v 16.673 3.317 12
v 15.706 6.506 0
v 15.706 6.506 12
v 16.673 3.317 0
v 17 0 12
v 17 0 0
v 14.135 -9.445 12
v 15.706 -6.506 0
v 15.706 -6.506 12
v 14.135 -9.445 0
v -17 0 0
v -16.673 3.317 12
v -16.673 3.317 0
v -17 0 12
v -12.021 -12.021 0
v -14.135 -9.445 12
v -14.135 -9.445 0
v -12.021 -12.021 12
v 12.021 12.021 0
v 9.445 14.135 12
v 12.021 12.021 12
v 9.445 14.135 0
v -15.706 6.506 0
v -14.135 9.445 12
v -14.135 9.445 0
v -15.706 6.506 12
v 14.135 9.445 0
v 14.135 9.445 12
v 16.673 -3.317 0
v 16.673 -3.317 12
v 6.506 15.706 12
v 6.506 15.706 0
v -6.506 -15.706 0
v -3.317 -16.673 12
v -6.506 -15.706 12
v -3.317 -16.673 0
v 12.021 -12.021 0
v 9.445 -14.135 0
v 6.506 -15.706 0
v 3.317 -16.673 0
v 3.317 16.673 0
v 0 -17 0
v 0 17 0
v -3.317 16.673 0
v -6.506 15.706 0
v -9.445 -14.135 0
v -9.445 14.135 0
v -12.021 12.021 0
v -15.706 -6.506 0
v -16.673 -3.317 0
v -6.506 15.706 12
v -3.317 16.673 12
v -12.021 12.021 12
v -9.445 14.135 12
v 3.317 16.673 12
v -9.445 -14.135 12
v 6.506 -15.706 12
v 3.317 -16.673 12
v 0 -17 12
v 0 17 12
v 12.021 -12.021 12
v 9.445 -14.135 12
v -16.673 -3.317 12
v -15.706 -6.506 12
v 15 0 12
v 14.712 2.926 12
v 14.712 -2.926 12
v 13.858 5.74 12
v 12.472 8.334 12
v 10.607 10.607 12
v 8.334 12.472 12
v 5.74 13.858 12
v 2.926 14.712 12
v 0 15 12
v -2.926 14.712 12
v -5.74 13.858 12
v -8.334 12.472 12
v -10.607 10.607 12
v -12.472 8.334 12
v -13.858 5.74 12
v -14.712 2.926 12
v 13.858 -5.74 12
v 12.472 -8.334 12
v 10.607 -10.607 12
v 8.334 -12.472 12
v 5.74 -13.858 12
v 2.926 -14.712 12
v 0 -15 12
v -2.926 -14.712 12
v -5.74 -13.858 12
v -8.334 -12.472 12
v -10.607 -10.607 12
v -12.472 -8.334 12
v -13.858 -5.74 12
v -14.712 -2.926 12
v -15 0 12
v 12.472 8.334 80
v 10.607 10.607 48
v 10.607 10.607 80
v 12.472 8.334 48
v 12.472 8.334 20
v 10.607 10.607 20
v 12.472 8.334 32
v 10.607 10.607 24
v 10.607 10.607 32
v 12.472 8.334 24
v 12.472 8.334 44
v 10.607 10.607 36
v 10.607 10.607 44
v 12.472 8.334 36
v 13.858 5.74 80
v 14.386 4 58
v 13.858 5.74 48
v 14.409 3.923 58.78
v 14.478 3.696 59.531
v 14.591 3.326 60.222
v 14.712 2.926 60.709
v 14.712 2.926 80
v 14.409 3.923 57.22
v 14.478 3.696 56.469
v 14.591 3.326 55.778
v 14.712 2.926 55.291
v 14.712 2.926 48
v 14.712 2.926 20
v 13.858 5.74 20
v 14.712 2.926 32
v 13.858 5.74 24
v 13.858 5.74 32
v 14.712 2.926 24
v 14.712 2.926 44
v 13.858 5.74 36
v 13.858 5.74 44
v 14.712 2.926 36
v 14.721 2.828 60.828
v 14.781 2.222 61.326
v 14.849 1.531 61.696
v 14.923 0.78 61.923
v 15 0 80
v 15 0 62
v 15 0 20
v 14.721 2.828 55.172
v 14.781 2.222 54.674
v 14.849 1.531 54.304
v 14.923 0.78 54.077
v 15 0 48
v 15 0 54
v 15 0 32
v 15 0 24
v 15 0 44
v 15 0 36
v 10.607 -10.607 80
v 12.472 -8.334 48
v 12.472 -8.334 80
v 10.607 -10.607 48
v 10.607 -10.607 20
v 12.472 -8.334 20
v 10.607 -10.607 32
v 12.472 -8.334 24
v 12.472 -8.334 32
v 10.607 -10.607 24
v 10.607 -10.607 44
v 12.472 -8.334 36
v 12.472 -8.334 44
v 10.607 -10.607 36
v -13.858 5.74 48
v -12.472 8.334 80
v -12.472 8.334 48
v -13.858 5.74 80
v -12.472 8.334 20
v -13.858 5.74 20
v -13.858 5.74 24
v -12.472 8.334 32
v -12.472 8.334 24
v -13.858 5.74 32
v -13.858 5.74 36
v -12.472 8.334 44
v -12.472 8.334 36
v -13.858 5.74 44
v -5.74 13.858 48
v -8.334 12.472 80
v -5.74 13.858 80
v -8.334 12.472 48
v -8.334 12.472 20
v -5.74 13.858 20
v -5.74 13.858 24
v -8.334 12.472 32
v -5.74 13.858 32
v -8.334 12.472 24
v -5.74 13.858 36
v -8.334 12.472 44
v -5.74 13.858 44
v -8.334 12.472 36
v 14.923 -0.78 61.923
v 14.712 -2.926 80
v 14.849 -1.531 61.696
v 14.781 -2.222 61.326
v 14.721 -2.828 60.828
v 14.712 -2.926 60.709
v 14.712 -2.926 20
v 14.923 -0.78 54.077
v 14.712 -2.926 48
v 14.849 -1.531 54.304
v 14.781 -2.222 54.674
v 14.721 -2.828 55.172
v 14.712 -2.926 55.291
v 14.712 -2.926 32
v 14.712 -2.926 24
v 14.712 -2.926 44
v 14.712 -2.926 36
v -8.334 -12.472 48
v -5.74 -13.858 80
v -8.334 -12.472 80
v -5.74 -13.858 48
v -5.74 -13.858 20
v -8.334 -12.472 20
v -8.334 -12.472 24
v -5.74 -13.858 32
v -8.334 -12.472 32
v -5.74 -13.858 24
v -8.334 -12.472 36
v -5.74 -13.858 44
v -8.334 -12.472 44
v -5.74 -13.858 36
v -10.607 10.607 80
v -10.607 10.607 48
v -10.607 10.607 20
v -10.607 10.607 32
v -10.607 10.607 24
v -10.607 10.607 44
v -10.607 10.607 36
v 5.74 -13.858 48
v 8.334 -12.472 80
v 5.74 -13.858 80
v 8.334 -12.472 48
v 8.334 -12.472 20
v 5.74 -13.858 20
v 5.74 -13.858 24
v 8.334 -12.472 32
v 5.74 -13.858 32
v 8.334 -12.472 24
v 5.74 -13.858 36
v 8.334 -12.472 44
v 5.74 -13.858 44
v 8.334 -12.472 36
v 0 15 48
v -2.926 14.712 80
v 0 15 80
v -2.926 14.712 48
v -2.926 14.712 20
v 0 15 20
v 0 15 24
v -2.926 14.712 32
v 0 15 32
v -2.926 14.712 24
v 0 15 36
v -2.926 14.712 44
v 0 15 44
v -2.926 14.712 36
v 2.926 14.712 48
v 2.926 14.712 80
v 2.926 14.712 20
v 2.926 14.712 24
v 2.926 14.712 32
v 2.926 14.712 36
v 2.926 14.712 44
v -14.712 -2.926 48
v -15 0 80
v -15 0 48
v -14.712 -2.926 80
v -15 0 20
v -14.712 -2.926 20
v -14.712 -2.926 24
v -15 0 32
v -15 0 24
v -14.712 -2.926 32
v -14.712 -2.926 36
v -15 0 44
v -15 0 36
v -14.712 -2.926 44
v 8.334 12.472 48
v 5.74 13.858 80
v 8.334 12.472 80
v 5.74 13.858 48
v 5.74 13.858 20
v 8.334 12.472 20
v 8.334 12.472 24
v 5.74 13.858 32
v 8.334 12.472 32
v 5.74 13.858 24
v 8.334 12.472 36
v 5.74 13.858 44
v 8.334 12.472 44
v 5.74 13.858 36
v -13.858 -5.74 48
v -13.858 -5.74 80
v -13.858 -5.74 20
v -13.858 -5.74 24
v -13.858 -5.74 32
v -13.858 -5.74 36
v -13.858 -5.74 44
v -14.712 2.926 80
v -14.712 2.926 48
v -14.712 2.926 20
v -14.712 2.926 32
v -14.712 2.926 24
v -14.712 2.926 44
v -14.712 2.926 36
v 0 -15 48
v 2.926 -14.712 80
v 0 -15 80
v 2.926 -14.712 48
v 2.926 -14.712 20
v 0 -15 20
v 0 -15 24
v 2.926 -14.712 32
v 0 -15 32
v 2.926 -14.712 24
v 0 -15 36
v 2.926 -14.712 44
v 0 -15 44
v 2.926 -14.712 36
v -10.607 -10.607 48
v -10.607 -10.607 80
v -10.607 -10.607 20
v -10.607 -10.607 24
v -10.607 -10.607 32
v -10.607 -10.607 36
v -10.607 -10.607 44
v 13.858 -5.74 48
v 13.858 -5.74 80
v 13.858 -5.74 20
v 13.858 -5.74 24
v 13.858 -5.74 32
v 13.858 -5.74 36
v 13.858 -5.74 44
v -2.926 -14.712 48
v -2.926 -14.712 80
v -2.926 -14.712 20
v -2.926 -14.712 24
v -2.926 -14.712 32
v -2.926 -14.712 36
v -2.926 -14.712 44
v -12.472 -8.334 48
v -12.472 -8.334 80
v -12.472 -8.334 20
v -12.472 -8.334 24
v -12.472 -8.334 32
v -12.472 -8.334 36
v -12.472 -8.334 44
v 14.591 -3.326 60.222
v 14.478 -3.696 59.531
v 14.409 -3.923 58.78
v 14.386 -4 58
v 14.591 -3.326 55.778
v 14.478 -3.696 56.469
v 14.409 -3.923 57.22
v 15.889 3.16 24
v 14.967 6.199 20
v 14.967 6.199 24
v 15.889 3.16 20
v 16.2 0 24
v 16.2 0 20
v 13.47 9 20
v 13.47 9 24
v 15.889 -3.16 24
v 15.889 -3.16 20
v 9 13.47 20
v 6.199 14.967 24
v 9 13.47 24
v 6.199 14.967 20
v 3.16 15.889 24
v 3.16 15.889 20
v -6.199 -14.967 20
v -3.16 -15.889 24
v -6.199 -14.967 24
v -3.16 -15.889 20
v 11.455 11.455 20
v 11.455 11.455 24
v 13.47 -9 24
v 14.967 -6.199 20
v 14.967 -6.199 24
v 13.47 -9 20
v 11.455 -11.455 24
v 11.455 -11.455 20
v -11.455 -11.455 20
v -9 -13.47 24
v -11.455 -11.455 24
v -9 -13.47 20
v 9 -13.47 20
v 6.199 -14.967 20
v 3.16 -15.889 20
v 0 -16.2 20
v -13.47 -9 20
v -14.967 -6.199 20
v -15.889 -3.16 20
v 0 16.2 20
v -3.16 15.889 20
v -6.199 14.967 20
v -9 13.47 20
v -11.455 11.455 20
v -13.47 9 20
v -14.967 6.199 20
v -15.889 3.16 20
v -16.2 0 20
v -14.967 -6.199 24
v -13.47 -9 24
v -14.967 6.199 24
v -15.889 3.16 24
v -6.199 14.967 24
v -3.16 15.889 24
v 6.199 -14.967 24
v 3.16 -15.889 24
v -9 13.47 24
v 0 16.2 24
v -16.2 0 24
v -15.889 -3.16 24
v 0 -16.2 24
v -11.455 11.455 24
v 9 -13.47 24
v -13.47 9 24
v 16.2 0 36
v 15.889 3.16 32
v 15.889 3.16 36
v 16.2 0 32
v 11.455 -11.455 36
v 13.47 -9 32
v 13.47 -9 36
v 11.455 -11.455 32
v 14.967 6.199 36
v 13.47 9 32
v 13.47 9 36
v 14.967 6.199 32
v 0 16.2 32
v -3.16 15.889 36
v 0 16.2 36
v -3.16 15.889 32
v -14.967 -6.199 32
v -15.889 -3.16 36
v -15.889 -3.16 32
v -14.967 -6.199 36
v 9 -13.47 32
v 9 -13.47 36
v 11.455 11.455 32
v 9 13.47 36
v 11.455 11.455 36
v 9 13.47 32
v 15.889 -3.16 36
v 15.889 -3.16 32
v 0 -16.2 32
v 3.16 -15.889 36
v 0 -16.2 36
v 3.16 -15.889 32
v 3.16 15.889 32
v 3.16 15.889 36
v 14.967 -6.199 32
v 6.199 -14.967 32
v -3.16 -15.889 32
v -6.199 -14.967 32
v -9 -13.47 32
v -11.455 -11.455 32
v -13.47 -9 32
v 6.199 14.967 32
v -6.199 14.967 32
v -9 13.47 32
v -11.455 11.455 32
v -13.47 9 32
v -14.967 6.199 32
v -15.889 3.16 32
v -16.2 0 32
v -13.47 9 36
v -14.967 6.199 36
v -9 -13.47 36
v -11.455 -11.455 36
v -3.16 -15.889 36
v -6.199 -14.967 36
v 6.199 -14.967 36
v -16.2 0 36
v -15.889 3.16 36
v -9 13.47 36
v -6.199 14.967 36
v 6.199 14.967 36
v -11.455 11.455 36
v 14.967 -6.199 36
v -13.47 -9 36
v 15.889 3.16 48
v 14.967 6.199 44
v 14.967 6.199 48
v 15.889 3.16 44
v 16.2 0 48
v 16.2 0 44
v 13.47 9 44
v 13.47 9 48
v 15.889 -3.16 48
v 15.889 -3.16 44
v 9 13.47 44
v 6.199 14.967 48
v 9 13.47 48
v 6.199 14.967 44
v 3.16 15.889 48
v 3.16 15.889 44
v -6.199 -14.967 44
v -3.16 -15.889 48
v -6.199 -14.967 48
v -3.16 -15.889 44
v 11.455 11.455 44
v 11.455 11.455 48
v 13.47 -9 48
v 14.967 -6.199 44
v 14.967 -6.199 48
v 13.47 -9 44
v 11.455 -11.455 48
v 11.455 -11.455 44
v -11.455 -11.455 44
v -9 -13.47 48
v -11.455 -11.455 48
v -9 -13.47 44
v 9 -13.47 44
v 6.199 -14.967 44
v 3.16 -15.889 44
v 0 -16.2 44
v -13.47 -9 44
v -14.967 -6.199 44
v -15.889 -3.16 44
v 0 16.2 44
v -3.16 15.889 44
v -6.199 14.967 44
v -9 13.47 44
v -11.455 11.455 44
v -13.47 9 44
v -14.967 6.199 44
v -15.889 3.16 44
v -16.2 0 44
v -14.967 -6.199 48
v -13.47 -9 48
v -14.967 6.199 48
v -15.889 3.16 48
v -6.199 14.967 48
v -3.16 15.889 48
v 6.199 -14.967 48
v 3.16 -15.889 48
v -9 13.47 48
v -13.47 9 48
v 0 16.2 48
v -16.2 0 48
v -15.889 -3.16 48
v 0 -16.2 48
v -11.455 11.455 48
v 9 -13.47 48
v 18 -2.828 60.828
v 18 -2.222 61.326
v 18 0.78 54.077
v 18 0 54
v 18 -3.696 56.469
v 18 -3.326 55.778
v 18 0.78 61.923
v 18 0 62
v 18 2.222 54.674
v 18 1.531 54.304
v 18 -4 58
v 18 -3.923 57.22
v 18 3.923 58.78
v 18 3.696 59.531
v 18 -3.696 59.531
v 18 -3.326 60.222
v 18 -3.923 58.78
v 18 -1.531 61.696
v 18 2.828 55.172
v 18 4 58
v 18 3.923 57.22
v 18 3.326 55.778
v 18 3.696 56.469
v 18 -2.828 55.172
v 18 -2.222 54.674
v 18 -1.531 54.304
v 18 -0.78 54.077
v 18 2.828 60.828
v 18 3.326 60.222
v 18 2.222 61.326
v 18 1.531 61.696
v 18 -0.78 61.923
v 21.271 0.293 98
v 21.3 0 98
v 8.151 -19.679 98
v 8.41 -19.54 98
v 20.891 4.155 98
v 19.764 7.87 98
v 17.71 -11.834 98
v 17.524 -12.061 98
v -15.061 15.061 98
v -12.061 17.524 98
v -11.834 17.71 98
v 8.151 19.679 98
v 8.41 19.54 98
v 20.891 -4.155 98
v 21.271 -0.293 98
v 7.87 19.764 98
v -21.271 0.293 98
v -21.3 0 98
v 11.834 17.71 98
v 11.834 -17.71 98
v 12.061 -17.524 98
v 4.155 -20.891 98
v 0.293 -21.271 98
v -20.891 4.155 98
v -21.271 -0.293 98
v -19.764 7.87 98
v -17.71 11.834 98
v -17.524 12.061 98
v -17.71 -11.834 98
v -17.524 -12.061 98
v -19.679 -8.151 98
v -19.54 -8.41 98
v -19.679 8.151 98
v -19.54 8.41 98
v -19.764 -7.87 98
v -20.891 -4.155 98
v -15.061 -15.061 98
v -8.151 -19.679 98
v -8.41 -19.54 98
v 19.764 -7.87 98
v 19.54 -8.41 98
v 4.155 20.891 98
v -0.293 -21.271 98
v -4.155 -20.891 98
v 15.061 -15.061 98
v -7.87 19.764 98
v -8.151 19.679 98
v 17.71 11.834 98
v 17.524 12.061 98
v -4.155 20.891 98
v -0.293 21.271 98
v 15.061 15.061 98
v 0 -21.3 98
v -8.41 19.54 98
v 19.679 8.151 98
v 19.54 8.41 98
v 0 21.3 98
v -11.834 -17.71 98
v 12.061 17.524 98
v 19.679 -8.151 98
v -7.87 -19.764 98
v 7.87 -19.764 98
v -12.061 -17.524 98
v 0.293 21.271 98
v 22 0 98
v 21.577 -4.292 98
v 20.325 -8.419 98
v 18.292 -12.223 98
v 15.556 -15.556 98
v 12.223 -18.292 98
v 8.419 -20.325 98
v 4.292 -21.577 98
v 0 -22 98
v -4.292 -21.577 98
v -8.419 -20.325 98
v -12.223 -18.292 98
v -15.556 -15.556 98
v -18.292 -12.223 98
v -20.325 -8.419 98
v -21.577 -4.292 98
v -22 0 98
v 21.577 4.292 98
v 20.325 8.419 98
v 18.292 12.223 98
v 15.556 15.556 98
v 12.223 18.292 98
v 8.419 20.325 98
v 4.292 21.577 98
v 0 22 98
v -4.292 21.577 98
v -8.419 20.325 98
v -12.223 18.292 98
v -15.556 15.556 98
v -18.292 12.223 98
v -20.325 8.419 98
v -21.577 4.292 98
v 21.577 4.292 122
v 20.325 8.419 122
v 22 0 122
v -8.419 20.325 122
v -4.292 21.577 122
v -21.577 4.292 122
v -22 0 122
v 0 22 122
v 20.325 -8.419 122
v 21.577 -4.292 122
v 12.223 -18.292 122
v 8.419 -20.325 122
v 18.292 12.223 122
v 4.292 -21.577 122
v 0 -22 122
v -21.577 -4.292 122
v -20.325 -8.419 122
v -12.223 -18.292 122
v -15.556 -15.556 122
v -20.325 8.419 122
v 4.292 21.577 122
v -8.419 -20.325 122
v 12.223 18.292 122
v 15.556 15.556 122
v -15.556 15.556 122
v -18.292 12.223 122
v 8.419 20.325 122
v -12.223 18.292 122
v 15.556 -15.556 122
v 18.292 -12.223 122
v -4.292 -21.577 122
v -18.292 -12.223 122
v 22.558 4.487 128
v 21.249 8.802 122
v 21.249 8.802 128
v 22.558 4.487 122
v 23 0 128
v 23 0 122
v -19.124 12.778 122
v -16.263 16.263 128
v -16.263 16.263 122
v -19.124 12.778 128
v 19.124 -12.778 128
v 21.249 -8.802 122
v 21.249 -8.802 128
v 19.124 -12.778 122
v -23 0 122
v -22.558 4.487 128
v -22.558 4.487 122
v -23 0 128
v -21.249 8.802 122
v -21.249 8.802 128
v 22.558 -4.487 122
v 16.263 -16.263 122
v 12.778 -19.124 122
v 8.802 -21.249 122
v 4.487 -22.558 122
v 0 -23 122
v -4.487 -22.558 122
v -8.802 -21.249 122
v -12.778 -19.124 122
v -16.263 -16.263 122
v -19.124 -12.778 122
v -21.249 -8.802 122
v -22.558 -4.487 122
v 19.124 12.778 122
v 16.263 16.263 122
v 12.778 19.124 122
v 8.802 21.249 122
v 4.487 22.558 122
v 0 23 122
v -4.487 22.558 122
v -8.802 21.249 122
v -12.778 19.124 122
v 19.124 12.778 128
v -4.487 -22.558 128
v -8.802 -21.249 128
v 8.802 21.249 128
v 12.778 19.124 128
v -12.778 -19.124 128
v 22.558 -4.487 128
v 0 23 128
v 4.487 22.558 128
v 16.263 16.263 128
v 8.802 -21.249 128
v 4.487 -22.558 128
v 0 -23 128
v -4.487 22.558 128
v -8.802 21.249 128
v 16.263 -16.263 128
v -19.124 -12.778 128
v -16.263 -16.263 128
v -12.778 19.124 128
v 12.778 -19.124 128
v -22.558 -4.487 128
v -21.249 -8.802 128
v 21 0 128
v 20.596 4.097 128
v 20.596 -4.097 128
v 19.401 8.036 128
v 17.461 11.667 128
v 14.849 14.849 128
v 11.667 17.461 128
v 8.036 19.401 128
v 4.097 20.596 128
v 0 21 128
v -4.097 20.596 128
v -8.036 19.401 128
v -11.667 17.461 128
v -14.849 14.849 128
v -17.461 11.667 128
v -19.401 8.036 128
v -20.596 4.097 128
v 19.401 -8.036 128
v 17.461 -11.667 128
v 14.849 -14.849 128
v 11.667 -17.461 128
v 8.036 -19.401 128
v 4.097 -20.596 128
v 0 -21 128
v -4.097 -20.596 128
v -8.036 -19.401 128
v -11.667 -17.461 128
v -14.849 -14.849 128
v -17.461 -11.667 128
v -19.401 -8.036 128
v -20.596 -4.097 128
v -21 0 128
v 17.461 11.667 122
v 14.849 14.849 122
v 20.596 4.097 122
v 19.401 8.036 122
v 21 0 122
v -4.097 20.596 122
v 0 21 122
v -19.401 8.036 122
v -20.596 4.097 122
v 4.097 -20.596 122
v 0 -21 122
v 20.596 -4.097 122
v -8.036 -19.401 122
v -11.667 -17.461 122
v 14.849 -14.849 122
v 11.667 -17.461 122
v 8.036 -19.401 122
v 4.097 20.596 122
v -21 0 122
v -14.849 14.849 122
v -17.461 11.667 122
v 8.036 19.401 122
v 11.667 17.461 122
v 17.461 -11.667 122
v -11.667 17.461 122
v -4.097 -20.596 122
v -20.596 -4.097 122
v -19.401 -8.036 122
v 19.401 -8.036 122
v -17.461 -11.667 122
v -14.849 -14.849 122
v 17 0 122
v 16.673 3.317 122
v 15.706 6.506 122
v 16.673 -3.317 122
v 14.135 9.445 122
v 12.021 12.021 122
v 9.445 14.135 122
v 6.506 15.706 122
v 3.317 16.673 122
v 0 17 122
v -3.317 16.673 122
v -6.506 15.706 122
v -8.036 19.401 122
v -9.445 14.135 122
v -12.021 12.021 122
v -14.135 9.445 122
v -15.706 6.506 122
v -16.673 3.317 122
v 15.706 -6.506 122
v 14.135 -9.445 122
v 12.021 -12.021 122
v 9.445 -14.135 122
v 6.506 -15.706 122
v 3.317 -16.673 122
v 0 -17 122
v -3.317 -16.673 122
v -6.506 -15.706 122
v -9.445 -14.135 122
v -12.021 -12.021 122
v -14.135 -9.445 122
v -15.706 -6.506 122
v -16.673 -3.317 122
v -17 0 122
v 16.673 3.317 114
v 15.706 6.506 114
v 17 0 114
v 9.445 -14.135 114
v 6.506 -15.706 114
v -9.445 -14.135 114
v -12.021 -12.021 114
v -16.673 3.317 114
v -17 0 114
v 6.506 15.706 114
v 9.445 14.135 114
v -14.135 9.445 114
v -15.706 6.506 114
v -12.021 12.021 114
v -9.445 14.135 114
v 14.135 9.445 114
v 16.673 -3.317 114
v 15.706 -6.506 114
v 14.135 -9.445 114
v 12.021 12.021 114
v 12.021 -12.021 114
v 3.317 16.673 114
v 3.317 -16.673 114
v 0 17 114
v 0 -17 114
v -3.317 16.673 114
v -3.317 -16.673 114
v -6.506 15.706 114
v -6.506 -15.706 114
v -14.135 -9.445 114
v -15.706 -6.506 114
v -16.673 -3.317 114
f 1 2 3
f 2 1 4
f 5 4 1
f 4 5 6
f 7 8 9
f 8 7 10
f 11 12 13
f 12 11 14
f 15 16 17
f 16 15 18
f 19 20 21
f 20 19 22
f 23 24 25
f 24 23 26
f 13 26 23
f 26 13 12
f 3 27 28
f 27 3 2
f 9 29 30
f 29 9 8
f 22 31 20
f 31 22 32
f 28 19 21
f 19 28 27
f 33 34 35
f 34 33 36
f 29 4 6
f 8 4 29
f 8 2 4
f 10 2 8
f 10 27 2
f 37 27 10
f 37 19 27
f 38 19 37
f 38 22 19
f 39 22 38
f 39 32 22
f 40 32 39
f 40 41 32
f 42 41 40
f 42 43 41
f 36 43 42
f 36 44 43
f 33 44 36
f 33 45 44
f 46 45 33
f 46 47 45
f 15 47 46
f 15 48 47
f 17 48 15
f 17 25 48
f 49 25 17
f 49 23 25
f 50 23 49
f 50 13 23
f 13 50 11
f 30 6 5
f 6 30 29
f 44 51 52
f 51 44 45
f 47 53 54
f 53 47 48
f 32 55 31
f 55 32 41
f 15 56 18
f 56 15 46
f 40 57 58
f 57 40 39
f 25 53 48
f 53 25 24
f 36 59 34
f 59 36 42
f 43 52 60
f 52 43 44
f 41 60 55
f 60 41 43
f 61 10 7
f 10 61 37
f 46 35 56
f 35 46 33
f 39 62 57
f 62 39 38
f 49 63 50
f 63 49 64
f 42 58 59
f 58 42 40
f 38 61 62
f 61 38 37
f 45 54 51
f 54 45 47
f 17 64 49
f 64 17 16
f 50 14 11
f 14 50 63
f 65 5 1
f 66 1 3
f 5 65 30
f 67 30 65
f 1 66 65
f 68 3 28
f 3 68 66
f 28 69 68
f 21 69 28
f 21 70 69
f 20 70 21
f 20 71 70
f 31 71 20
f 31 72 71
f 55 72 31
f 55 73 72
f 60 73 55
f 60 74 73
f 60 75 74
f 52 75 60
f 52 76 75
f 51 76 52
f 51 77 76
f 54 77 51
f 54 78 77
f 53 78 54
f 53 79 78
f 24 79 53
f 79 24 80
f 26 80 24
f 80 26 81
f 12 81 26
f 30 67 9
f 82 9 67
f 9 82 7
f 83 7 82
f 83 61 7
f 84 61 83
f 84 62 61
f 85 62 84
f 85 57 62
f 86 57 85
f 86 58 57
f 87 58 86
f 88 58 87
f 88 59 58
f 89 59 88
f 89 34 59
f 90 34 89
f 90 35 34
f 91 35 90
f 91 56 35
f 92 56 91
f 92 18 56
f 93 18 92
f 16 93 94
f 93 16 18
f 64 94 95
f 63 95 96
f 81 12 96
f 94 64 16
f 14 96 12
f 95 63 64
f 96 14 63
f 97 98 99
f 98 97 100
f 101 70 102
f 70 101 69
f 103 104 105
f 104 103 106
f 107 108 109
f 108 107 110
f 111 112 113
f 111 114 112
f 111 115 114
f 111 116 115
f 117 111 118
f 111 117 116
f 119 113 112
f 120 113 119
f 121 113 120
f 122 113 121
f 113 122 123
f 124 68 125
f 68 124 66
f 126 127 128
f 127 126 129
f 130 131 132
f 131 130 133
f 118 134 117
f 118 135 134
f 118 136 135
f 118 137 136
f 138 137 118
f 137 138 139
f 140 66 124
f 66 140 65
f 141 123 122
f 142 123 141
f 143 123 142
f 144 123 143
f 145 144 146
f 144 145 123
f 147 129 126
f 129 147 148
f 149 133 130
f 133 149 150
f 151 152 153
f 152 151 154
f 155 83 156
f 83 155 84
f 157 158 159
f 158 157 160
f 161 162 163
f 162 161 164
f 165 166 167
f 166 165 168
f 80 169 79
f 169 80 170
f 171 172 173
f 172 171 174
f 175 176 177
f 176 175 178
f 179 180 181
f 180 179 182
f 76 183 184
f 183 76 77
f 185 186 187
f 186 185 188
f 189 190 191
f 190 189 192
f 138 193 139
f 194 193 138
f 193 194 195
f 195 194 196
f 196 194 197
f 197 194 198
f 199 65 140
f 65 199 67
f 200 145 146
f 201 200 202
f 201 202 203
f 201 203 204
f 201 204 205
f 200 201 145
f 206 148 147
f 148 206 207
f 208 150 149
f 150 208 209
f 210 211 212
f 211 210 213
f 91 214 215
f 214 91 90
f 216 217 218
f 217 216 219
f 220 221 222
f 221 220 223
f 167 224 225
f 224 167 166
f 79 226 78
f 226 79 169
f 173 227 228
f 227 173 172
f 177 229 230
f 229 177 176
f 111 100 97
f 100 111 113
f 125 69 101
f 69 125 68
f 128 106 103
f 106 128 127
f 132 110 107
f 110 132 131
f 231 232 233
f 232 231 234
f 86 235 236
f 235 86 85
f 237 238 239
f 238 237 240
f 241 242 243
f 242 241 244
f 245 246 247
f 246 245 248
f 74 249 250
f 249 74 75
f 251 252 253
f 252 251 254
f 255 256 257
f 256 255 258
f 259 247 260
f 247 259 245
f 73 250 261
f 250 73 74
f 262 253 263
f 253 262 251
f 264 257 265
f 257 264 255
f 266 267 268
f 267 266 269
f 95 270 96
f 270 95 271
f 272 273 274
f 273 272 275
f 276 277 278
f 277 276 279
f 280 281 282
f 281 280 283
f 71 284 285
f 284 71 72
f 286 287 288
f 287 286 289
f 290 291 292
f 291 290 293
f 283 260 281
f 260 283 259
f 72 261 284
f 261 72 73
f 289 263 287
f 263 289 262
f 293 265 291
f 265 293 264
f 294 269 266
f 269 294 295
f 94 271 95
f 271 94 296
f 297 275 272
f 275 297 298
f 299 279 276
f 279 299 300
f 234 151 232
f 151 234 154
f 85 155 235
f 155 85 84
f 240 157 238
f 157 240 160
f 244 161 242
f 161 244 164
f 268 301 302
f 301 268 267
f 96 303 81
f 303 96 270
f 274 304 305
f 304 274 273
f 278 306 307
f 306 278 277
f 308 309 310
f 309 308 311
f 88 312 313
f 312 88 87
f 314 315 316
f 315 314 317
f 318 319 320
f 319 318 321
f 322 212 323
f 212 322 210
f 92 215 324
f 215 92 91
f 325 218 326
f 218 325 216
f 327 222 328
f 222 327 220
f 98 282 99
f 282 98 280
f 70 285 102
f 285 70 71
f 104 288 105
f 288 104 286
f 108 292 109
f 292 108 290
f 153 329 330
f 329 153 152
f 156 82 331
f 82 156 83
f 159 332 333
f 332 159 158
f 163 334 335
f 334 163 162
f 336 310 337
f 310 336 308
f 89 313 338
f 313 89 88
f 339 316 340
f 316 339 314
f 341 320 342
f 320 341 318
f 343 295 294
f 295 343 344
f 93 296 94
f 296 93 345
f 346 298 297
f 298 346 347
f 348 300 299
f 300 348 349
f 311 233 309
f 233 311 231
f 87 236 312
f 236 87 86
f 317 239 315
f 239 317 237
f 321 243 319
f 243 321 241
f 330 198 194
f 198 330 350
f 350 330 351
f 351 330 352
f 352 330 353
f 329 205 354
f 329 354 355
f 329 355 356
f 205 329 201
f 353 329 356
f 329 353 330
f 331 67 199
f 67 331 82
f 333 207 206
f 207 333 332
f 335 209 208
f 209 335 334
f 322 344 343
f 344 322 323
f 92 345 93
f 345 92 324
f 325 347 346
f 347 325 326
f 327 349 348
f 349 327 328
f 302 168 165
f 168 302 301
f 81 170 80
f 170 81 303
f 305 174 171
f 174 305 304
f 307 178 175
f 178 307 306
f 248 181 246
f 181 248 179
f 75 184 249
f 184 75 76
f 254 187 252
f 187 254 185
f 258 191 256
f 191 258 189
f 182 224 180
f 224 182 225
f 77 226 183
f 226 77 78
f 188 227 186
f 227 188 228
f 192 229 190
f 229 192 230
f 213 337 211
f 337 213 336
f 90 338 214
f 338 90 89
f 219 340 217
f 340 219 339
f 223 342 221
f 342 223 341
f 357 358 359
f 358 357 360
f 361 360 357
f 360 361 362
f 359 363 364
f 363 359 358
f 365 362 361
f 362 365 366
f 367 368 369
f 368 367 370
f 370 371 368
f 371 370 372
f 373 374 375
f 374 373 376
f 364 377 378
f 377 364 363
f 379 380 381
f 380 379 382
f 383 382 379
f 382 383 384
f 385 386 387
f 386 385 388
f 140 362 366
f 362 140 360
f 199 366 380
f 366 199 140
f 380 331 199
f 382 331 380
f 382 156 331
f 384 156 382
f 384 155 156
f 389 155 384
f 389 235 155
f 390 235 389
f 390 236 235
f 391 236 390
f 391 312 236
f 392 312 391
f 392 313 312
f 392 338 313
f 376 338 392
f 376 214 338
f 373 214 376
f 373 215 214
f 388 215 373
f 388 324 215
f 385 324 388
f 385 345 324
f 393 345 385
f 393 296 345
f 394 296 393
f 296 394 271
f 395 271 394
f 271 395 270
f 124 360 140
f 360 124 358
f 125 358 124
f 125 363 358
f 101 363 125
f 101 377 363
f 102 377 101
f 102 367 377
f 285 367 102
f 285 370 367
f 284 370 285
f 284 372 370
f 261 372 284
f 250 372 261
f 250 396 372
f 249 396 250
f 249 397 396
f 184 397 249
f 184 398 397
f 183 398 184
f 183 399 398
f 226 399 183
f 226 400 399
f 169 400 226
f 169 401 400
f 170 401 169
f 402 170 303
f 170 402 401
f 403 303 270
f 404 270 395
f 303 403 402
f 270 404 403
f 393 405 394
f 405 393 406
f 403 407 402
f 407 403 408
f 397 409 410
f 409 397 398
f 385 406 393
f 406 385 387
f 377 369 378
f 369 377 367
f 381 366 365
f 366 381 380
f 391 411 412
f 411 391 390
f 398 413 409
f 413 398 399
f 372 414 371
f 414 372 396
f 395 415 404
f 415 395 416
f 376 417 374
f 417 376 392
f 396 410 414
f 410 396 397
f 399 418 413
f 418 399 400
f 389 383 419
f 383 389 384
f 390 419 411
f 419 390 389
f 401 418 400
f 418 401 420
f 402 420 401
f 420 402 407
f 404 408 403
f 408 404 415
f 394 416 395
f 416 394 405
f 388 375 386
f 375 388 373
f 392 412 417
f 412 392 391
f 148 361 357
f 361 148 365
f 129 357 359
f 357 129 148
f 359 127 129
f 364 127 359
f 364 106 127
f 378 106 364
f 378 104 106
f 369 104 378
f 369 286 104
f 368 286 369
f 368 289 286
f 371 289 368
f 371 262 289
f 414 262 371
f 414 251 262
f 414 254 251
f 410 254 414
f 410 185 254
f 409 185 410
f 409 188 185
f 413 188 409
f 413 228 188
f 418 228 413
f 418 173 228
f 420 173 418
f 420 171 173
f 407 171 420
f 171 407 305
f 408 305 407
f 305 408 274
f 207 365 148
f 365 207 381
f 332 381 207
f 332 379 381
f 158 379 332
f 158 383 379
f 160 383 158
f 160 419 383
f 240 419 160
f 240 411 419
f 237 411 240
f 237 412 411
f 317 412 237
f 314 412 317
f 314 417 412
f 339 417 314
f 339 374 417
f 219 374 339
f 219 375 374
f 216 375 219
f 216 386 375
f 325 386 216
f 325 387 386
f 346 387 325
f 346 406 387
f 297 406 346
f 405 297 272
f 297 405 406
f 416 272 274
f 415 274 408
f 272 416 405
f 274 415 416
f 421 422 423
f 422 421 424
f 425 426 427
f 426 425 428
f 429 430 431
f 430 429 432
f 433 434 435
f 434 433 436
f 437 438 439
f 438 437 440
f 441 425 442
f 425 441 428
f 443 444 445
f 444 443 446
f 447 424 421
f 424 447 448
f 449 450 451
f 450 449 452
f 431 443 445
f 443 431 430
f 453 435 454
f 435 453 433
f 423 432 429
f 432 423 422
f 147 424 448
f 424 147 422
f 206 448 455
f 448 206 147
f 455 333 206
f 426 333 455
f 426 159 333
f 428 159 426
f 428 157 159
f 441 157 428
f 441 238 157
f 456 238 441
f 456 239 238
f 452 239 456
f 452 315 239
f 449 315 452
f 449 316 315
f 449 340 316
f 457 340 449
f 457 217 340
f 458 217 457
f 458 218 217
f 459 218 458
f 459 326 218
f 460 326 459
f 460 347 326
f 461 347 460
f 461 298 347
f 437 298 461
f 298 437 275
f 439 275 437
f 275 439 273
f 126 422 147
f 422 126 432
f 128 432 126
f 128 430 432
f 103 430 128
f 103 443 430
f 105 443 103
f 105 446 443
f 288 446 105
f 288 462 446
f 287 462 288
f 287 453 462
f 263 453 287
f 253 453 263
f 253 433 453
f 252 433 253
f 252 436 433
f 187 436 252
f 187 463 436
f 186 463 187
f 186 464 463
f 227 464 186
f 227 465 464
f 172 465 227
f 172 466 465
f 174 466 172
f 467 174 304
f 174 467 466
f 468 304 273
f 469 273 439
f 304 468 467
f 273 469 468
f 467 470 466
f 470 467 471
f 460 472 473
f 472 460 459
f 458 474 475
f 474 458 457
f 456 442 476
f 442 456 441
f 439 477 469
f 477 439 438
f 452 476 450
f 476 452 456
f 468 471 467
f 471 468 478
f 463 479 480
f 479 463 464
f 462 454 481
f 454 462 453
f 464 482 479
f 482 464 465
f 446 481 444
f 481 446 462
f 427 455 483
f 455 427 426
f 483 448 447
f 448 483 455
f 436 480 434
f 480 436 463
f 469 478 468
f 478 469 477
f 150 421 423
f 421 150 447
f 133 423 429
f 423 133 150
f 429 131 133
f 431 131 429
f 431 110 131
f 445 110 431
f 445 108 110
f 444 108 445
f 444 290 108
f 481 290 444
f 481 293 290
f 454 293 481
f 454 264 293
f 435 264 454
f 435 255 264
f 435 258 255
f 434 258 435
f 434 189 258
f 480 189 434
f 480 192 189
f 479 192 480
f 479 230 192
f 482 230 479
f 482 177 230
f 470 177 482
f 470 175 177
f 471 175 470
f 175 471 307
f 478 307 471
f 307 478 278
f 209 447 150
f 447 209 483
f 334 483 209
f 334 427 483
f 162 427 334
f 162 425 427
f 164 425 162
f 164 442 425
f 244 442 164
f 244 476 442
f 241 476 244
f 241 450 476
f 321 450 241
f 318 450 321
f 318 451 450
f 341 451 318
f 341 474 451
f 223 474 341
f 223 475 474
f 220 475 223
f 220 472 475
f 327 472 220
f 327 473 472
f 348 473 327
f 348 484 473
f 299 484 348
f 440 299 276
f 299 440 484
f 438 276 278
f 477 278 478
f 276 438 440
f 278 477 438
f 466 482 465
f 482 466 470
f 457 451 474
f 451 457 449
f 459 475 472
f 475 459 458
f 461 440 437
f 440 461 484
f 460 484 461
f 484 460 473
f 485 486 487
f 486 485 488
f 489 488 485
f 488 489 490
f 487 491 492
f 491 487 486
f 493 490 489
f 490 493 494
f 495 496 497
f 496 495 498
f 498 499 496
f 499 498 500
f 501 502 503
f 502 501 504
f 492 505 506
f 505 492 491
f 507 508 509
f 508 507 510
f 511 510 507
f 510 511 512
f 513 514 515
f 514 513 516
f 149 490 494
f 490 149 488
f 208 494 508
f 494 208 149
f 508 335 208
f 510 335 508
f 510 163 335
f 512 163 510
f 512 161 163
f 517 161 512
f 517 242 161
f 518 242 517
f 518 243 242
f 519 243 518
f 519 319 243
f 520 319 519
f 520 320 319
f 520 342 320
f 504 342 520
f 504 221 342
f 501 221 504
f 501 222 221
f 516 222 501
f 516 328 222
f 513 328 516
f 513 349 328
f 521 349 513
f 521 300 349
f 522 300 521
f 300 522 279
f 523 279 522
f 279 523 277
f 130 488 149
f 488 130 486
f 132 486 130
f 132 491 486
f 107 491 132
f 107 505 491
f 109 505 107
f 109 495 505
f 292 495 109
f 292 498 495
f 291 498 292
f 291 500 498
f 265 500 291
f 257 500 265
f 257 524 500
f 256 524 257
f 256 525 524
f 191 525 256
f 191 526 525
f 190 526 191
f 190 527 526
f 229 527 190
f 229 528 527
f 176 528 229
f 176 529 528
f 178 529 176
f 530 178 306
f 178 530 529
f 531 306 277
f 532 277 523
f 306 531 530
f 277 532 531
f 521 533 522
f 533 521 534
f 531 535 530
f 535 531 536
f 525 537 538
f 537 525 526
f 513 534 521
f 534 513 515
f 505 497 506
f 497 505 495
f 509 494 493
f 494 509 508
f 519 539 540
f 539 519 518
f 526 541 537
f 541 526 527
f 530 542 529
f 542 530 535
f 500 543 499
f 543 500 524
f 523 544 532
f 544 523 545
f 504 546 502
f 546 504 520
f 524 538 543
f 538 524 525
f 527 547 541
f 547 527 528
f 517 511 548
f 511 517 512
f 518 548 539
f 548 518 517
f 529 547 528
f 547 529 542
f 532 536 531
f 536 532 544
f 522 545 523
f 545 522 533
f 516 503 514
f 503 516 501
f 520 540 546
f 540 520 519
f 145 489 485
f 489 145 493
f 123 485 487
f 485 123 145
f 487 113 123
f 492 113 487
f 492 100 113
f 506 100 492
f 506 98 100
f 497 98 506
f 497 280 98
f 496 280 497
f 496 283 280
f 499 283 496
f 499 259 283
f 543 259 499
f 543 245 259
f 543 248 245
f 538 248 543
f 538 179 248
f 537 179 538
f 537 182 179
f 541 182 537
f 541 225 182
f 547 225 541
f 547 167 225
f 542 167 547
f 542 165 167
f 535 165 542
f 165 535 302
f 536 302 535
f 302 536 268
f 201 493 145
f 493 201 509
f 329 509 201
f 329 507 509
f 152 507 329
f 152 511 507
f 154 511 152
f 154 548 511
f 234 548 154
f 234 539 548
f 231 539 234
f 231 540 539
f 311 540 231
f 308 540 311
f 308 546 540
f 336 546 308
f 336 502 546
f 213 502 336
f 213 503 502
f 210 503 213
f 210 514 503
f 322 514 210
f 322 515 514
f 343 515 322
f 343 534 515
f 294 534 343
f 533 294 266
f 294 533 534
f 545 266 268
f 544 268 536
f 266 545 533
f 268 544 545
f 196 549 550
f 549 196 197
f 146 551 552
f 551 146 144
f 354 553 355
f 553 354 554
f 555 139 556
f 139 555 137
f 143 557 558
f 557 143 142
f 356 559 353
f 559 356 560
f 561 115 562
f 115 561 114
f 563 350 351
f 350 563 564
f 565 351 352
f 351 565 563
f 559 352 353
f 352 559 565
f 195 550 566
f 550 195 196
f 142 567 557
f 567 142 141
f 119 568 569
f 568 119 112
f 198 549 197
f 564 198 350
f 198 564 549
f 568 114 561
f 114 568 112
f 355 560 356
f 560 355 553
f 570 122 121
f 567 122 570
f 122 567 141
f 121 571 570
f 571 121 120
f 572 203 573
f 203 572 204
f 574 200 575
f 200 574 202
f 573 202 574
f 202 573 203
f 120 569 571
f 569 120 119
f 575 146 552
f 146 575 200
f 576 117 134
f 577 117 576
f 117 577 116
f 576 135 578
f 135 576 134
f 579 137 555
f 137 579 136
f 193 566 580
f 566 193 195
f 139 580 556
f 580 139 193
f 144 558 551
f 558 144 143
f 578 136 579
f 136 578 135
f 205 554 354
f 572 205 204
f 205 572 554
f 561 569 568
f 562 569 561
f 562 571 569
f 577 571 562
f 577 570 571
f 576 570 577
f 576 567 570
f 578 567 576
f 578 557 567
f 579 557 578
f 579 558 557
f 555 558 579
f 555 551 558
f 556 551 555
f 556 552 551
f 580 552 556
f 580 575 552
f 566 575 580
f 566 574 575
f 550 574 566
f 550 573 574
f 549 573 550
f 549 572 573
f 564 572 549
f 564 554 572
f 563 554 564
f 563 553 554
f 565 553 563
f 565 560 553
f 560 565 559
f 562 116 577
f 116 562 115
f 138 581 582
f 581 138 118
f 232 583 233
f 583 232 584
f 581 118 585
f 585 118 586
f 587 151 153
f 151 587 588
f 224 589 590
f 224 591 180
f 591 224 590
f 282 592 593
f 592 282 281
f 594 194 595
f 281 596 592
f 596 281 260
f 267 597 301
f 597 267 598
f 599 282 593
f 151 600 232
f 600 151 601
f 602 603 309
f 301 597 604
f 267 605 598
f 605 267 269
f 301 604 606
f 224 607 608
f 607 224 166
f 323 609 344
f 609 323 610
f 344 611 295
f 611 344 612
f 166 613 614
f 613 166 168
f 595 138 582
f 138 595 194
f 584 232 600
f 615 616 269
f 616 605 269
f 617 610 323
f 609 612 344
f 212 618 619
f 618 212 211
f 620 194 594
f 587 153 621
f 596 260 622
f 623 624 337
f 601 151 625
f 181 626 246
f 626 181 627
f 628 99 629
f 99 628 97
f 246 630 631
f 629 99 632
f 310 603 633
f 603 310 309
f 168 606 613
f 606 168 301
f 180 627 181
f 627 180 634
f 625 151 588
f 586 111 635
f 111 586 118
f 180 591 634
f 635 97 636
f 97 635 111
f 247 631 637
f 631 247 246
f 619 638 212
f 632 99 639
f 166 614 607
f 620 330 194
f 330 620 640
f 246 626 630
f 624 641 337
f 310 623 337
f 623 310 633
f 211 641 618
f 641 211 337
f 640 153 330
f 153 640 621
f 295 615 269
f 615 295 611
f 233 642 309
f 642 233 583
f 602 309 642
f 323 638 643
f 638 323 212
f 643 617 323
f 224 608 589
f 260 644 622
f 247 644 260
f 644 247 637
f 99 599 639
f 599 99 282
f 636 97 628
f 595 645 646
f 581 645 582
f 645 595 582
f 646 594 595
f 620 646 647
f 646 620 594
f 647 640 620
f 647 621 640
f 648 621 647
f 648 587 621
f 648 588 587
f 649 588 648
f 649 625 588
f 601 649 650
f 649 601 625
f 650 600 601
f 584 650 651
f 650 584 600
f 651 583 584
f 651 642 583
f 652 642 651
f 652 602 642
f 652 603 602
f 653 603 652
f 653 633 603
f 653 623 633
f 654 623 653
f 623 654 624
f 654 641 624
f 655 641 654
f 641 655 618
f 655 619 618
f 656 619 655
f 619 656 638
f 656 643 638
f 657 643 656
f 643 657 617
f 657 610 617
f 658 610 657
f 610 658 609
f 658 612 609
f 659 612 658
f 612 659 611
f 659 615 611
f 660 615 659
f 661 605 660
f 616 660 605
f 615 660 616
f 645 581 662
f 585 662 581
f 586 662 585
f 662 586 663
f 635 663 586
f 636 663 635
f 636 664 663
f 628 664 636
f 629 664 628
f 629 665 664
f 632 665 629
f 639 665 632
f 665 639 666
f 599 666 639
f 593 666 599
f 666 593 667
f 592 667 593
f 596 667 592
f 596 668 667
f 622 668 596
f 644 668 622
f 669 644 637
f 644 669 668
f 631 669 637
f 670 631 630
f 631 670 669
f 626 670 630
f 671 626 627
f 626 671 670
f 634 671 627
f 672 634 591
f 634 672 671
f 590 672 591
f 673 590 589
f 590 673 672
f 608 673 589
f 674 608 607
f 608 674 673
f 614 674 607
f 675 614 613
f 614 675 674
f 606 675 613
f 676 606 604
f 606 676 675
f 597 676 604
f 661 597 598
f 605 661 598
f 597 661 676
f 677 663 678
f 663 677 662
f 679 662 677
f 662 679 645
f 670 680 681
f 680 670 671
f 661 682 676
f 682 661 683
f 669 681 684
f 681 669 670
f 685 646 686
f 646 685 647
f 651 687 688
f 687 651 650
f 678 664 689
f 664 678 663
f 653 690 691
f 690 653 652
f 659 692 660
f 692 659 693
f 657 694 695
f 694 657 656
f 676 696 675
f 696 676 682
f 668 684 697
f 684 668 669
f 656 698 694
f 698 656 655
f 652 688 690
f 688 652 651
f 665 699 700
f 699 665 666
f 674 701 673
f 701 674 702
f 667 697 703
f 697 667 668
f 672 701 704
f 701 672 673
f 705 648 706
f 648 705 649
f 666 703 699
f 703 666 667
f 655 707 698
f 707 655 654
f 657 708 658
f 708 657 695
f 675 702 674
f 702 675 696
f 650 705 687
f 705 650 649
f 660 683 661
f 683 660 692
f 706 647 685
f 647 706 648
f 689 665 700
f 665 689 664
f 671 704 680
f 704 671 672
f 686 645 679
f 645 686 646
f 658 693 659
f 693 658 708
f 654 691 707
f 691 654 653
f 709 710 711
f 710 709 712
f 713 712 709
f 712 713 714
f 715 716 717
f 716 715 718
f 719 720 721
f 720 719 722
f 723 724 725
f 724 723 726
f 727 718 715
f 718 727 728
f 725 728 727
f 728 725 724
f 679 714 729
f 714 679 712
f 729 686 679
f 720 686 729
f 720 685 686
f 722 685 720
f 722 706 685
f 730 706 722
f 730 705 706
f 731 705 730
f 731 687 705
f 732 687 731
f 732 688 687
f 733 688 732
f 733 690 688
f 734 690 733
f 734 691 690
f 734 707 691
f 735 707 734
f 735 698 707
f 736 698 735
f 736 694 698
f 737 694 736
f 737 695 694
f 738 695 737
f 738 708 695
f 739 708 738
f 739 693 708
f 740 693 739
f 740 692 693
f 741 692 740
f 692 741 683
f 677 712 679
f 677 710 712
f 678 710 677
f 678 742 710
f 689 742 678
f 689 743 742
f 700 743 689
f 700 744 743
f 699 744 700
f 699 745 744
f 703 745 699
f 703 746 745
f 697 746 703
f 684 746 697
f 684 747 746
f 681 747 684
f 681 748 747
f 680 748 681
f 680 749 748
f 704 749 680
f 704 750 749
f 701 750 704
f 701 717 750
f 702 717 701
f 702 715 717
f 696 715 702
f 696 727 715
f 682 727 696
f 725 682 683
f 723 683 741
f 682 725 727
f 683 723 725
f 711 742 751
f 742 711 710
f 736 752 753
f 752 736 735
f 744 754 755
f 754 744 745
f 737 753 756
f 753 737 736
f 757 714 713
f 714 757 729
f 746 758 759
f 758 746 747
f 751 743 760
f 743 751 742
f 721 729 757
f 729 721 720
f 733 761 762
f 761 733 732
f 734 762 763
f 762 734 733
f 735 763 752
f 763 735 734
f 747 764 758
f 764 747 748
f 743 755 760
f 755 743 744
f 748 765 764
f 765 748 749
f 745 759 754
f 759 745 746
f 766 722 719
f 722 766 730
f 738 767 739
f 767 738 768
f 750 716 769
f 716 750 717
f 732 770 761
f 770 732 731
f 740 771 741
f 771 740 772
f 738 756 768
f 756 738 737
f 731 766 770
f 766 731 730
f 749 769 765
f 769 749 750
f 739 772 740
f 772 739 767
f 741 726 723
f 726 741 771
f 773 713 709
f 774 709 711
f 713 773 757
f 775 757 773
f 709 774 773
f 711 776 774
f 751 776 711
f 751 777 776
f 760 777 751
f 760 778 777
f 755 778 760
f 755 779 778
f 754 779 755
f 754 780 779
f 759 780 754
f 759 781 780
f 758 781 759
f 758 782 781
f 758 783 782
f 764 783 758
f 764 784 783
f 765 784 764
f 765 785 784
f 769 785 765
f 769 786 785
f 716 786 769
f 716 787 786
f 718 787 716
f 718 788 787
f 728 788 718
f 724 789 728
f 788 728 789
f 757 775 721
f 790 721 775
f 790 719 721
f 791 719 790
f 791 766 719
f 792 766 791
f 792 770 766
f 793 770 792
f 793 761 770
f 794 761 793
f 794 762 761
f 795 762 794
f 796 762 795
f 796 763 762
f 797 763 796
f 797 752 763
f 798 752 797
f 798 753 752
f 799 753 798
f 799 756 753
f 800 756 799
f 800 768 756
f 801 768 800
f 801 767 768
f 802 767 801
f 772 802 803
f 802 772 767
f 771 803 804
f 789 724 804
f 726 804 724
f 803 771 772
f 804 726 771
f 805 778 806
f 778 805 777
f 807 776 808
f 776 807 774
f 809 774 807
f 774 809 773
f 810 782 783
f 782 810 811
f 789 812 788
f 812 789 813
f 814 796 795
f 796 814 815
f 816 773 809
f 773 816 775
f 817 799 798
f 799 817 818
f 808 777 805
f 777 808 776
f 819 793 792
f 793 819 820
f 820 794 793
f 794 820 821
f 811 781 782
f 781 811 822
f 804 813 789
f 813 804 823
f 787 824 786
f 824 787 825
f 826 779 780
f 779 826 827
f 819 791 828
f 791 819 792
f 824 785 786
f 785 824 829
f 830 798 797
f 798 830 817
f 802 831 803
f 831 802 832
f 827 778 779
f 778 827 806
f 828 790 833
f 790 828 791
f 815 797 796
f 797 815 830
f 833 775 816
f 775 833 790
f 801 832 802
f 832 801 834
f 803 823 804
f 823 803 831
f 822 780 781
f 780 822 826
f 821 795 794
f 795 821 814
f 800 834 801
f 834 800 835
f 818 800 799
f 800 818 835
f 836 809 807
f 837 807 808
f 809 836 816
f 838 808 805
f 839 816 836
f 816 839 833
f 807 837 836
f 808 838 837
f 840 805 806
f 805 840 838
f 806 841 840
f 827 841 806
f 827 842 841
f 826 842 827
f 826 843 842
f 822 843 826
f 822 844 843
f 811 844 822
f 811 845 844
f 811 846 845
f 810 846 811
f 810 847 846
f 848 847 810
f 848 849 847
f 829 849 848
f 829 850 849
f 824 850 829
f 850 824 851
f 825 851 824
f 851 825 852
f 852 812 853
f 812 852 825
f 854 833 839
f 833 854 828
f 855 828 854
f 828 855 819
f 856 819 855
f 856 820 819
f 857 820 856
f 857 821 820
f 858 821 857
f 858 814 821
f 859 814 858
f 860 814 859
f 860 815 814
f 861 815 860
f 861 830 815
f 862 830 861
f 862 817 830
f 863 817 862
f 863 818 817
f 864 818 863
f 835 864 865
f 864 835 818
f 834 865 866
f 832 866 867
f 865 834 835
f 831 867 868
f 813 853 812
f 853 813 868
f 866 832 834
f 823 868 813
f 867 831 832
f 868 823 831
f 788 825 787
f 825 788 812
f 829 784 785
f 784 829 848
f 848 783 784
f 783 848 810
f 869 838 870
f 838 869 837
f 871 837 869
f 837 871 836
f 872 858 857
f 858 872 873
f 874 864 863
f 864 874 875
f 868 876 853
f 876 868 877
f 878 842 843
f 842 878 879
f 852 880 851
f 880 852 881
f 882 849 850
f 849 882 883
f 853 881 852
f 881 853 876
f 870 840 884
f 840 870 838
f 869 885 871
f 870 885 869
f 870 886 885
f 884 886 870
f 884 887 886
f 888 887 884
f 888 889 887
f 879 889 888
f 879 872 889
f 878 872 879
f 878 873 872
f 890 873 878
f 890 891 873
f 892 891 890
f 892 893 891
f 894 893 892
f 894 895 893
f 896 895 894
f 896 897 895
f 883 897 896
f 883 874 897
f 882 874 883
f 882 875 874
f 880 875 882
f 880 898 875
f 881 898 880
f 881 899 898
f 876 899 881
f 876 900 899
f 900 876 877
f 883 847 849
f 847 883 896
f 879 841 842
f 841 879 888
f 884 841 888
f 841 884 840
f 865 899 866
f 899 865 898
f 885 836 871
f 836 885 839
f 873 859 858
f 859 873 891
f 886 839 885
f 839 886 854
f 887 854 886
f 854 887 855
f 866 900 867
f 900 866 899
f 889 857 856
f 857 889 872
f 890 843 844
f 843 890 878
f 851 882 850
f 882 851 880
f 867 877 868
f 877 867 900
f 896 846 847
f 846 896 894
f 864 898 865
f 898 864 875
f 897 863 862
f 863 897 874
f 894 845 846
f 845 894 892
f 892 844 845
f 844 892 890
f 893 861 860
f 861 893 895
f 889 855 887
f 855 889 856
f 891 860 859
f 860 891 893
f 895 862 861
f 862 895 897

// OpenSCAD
// Flashlight - heavy-duty cylindrical flashlight with a bezel
// Low-poly, single connected manifold (no internal cavities), rests on Z=0

$fn = 32;

module body() {
    translate([0, 0, 0]) cylinder(r = 17, h = 12);      // tail cap (z 0..12)
    translate([0, 0, 10]) cylinder(r = 15, h = 72);     // main barrel (z 10..82)
    // grip rings, sunk into the barrel
    translate([0, 0, 20]) cylinder(r = 16.2, h = 4);
    translate([0, 0, 32]) cylinder(r = 16.2, h = 4);
    translate([0, 0, 44]) cylinder(r = 16.2, h = 4);
    // switch button on the +X side, sunk 1 unit into the barrel
    translate([14, 0, 58]) rotate([0, 90, 0]) cylinder(r = 4, h = 4);
}

module head() {
    translate([0, 0, 80]) cylinder(r1 = 15, r2 = 22, h = 20);  // flare (z 80..100)
    translate([0, 0, 98]) cylinder(r = 22, h = 26);            // head barrel (z 98..124)
    translate([0, 0, 122]) cylinder(r = 23, h = 6);            // bezel ring (z 122..128)
}

module flashlight() {
    difference() {
        union() {
            body();
            head();
        }
        // open stepped bore: both cuts reach the top face, so no enclosed void
        translate([0, 0, 122]) cylinder(r = 21, h = 7);   // mouth opening, 2 unit rim
        translate([0, 0, 114]) cylinder(r = 17, h = 9);   // reflector throat
    }
}

flashlight();
